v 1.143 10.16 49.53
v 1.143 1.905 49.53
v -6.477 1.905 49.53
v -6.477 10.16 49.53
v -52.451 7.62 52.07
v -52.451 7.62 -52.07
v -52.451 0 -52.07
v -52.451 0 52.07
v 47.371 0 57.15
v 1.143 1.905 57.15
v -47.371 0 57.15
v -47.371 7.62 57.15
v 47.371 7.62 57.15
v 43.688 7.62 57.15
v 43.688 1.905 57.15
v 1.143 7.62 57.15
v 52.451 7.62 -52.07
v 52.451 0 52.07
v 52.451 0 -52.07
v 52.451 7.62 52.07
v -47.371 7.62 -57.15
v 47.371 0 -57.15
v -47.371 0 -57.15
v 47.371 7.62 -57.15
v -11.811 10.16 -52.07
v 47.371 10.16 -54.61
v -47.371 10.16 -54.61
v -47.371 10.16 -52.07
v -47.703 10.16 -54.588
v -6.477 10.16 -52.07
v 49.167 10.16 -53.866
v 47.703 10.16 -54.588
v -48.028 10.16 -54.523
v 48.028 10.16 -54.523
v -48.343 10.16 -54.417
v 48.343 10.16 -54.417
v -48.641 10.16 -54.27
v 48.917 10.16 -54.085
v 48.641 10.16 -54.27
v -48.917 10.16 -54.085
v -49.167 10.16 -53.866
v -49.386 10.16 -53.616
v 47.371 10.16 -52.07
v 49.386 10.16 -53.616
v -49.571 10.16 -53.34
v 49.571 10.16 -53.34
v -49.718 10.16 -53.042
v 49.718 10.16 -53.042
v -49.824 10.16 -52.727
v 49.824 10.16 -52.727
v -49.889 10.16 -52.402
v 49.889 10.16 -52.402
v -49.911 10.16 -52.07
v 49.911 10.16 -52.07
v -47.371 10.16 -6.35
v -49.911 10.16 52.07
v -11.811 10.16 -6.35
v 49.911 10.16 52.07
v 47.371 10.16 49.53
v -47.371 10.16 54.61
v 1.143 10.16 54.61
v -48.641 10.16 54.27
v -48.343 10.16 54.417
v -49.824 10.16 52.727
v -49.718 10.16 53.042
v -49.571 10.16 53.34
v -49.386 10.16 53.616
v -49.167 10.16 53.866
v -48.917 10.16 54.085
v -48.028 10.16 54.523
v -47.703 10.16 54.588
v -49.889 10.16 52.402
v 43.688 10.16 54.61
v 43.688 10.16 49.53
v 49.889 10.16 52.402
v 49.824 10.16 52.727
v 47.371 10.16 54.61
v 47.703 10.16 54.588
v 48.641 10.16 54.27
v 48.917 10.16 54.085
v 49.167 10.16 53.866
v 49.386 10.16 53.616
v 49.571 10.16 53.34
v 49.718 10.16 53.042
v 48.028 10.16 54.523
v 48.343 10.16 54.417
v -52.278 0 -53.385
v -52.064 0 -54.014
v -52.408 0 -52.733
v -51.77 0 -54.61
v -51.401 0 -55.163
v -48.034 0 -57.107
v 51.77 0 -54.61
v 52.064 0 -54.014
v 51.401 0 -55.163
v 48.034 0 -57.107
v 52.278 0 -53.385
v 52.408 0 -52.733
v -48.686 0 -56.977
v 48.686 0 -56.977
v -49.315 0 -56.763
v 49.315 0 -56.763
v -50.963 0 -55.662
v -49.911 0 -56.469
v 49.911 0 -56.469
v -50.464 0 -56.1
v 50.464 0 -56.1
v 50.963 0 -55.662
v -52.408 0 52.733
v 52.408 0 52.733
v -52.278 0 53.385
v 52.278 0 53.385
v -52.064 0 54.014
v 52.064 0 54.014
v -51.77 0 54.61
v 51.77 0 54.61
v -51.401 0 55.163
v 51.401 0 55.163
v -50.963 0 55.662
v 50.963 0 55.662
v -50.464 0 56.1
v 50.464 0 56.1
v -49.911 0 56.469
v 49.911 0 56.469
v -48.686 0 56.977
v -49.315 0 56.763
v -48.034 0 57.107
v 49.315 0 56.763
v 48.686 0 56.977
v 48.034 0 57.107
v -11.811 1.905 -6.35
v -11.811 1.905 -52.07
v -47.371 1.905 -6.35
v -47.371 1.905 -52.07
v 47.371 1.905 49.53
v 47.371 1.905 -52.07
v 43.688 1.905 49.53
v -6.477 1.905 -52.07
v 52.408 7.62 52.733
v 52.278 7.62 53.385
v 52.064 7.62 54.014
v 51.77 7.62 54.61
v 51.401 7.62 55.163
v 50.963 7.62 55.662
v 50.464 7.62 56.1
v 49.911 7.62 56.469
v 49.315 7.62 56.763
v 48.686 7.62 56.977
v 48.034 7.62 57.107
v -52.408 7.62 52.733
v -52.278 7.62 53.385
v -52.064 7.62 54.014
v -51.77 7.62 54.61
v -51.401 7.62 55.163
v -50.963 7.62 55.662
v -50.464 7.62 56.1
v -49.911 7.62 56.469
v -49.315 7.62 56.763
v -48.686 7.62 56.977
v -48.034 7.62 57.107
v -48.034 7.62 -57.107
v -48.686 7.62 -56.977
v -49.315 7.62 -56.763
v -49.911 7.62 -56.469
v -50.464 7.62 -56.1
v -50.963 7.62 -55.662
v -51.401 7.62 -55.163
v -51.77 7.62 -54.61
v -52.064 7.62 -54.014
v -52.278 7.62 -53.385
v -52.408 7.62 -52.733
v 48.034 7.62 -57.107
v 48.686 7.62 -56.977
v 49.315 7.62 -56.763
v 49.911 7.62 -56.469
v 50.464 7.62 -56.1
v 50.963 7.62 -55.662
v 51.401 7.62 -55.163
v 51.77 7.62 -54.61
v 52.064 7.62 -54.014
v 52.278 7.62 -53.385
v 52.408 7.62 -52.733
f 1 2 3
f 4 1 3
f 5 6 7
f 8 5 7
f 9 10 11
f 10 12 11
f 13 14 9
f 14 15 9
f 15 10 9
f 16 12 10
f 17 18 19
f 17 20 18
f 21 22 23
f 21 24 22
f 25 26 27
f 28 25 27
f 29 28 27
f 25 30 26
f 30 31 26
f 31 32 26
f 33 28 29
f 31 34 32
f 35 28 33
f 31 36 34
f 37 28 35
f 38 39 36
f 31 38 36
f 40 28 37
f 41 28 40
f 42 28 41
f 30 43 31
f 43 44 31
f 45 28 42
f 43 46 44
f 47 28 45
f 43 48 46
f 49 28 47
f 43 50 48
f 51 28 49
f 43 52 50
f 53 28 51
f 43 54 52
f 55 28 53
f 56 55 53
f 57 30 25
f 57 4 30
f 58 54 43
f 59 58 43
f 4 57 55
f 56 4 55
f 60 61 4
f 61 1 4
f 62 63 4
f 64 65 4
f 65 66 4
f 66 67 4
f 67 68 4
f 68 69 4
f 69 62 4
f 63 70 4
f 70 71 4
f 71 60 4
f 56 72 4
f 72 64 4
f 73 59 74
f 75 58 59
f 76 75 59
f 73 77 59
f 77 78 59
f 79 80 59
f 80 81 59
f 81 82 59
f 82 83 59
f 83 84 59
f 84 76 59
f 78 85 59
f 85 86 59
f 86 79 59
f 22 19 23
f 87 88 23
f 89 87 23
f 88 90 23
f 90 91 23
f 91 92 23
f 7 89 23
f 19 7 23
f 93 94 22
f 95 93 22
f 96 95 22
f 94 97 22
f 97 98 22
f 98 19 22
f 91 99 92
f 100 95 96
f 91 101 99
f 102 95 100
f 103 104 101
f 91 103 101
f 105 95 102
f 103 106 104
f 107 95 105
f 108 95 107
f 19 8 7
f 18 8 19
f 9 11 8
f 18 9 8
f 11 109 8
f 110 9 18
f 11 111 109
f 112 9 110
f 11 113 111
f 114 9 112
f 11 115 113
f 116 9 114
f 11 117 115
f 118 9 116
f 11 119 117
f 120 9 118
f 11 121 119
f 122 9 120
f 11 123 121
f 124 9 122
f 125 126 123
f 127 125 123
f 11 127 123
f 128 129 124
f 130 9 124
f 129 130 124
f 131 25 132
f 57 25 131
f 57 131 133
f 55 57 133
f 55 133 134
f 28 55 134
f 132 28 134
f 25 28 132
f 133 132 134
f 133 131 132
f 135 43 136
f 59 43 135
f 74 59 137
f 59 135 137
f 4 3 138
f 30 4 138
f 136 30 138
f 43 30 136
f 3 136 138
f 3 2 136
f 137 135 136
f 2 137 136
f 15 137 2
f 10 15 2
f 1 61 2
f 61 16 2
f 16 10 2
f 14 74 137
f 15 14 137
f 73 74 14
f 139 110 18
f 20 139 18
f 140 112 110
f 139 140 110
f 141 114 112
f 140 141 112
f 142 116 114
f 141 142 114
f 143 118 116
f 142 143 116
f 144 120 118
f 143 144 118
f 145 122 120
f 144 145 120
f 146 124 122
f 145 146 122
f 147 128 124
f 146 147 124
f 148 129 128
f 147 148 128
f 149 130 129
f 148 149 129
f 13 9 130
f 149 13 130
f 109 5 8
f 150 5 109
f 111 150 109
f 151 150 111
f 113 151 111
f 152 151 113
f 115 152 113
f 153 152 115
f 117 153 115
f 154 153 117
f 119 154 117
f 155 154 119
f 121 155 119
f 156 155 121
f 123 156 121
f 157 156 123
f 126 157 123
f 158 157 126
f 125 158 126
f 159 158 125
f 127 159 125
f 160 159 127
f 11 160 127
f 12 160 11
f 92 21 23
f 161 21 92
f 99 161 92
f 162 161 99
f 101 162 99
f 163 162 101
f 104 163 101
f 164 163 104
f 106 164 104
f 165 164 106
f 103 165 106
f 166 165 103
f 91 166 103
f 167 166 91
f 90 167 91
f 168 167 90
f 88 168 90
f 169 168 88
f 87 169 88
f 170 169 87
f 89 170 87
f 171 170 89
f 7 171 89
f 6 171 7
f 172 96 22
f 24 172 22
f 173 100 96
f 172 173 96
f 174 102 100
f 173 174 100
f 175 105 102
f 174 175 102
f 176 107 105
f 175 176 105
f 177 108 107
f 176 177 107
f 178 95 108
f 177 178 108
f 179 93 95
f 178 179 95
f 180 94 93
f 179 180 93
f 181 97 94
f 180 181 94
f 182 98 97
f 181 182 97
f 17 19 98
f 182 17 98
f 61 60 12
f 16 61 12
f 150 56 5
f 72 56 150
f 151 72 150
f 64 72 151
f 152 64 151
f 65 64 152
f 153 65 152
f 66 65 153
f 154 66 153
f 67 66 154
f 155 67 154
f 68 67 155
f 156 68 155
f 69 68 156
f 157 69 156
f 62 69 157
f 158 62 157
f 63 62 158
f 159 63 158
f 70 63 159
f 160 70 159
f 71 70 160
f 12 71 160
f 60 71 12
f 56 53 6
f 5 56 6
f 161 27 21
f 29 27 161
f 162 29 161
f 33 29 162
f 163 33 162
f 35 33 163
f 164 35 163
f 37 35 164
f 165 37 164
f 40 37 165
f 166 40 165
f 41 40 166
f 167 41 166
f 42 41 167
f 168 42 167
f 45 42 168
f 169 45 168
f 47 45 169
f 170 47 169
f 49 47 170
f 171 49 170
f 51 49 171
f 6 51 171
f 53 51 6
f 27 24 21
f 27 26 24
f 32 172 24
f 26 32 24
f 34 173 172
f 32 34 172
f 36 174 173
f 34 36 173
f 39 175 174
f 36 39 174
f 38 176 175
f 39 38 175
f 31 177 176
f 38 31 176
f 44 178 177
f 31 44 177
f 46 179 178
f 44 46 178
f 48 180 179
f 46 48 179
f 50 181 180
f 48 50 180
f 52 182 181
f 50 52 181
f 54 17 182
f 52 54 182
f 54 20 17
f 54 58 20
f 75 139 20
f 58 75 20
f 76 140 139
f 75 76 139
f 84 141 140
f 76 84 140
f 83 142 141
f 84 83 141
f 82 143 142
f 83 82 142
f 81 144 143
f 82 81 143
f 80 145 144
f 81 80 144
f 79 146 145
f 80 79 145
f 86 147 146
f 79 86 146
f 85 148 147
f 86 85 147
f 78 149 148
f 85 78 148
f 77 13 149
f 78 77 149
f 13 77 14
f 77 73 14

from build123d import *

# Parameters (mm, degrees)
SKETCH1_W           = 104.902
SKETCH1_H           = 114.3
BOSS_EXTRUDE1_DEPTH = 10.16
SKETCH2_W           = 35.56
SKETCH2_H           = 45.72
CUT_EXTRUDE1_DEPTH  = 8.255
SKETCH3_W           = 53.848
SKETCH3_H           = 101.6
CUT_EXTRUDE2_DEPTH  = 8.255
CUT_EXTRUDE3_DEPTH  = 8.255
FILLET1_R           = 5.08
CHAMFER1_SIZE       = 2.54


with BuildPart() as part:
    # Sketch1 → Boss-Extrude1 (new body)
    with BuildSketch(Plane(origin=(0, 0, 0), x_dir=(1, 0, 0), z_dir=(0, 1, 0))):
        Rectangle(SKETCH1_W, SKETCH1_H)
    extrude(amount=BOSS_EXTRUDE1_DEPTH)

    # Sketch2 → Cut-Extrude1 (cut)
    with BuildSketch(Plane(origin=(0, 10.16, 0), x_dir=(1, 0, 0), z_dir=(0, 1, 0))):
        with Locations((-29.591, 29.21)):
            Rectangle(SKETCH2_W, SKETCH2_H)
    extrude(amount=-CUT_EXTRUDE1_DEPTH, mode=Mode.SUBTRACT)

    # Sketch3 → Cut-Extrude2 (cut)
    with BuildSketch(Plane(origin=(0, 10.16, 0), x_dir=(1, 0, 0), z_dir=(0, 1, 0))):
        with Locations((20.447, 1.27)):
            Rectangle(SKETCH3_W, SKETCH3_H)
    extrude(amount=-CUT_EXTRUDE2_DEPTH, mode=Mode.SUBTRACT)

    # Sketch4 → Cut-Extrude3 (cut)
    with BuildSketch(Plane(origin=(0, 10.16, 0), x_dir=(1, 0, 0), z_dir=(0, 1, 0))):
        Polygon((1.143, -49.53), (13.843, -49.53), (33.528, -49.53), (43.688, -49.53), (43.688, -57.15), (33.528, -57.15), (15.4686, -57.15), (1.143, -57.15), align=None)
    extrude(amount=-CUT_EXTRUDE3_DEPTH, mode=Mode.SUBTRACT)

    # Fillet1
    fillet1_edges = [part.edges().sort_by_distance(p)[0] for p in [
        (-52.451, 5.08, -57.15),
        (52.451, 5.08, -57.15),
        (52.451, 5.08, 57.15),
        (-52.451, 5.08, 57.15),
    ]]
    fillet(fillet1_edges, radius=FILLET1_R)

    # Chamfer1
    chamfer1_edges = [part.edges().sort_by_distance(p)[0] for p in [
        (45.5295, 10.16, 57.15),
        (52.451, 10.16, 0),
        (-23.114, 10.16, 57.15),
        (0, 10.16, -57.15),
        (-52.451, 10.16, 0),
        (50.963102448, 10.16, -55.662102448),
        (-50.963102448, 10.16, -55.662102448),
        (-50.963102448, 10.16, 55.662102448),
        (50.963102448, 10.16, 55.662102448),
    ]]
    chamfer(chamfer1_edges, length=CHAMFER1_SIZE)


solid = part.part
